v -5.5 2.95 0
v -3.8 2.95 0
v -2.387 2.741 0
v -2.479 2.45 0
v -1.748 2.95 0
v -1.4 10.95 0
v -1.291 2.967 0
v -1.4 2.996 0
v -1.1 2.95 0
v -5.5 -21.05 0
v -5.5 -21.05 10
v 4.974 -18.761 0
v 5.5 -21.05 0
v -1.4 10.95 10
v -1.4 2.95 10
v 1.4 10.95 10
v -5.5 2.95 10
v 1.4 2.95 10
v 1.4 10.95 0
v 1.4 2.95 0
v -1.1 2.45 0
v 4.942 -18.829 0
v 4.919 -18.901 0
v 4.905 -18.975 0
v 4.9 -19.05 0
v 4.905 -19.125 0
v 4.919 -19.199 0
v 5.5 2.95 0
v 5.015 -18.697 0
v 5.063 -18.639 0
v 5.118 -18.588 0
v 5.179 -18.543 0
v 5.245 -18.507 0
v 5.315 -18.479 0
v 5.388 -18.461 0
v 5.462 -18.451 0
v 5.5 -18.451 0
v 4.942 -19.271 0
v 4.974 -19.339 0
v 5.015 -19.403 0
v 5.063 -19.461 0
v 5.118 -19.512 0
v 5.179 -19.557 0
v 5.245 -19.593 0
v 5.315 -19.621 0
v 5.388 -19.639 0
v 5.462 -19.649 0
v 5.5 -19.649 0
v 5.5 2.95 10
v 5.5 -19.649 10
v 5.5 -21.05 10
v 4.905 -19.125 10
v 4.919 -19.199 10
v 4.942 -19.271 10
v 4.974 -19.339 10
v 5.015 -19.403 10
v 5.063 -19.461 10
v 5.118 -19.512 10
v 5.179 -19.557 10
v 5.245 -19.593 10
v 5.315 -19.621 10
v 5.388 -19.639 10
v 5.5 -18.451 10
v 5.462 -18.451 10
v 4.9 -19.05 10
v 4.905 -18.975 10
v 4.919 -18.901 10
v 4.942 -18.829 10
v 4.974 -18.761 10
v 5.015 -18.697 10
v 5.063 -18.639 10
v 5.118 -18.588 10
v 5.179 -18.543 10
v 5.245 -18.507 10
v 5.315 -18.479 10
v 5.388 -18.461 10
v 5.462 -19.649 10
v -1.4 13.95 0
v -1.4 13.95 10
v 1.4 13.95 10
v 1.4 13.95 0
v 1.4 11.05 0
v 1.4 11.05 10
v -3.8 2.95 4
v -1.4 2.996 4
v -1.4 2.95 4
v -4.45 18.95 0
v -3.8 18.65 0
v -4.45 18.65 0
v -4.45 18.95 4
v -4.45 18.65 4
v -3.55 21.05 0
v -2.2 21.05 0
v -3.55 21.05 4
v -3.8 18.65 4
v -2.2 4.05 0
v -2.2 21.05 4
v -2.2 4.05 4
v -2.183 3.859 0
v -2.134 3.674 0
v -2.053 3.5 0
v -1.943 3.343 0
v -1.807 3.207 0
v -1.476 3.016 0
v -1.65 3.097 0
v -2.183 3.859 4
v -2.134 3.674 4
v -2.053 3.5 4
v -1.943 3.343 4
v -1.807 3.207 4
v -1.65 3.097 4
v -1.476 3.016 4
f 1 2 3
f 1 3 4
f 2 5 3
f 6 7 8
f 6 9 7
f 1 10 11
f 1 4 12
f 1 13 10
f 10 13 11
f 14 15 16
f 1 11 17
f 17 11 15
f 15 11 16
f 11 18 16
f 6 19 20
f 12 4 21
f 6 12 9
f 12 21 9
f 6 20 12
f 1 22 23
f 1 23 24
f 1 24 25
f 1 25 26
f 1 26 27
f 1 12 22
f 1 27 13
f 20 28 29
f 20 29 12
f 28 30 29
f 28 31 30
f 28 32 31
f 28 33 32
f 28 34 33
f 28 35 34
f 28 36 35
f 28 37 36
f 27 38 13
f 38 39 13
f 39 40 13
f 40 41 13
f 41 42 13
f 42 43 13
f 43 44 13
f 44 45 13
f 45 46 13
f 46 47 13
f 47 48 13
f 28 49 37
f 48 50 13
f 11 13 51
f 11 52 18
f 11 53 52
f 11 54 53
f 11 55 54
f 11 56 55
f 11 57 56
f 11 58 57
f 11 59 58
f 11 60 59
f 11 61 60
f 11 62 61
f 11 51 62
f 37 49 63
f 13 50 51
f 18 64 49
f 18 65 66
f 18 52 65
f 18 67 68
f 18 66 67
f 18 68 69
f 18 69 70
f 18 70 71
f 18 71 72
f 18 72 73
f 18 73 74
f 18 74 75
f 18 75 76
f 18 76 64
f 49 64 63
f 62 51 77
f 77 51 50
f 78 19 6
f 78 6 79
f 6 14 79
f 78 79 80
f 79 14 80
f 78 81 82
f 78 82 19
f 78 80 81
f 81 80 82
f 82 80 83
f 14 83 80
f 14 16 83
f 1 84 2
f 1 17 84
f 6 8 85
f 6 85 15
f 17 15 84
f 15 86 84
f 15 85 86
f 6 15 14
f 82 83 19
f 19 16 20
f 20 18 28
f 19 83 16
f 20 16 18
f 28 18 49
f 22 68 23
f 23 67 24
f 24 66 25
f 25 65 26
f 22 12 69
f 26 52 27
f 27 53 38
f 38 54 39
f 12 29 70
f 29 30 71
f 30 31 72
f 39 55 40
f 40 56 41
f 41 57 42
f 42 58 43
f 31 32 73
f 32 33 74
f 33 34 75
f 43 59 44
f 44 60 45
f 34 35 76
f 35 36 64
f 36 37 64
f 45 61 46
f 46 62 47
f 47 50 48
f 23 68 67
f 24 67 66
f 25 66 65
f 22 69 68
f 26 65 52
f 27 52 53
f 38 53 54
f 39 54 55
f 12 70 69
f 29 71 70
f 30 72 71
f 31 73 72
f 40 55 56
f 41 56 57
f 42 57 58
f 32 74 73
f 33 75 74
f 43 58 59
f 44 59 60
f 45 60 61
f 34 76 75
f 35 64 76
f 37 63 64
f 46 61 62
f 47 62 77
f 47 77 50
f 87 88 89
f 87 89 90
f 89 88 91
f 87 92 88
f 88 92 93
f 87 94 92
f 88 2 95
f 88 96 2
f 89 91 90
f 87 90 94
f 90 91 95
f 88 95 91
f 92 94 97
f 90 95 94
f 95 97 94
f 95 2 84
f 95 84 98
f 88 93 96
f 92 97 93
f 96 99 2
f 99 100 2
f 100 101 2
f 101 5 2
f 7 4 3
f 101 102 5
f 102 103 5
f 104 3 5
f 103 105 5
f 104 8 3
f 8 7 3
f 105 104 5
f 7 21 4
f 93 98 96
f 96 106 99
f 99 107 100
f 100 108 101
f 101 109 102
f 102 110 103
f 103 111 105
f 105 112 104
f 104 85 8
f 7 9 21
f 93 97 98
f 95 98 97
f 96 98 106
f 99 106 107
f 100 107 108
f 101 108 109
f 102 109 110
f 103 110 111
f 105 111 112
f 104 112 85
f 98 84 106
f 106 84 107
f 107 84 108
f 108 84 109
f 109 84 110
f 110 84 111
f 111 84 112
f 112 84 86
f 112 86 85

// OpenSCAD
$fn = 50;

difference() {
	union() {
		translate(v = [0, 10.95, 0]) {
			rotate(a = [90, 0, 0]) {
				union() {
					difference() {
						union() {
							translate(v = [-5.5, 0, 0]) {
								cube(size = [11.0, 10.0, 32.0]);
							}
							translate(v = [-1.4, 0, -3.0]) {
								cube(size = [2.8, 10.0, 3.1]);
							}
						}
						union() {
							translate(v = [-5.6, -0.1, -0.1]) {
								cube(size = [4.199999999999999, 10.2, 8.1]);
							}
							translate(v = [1.4, -0.1, -0.1]) {
								cube(size = [4.199999999999999, 10.2, 8.1]);
							}
							translate(v = [5.5, 10.1, 30.0]) {
								rotate(a = [90, 0, 0]) {
									cylinder(h = 10.2, r = 0.6);
								}
							}
						}
					}
					union() {
						translate(v = [0, 4.0, 0]) {
							rotate(a = [90, 0, 0]) {
								linear_extrude(height = 4.0) {
									polygon(points = [[-2.2, -10.1], [-3.55, -10.1], [-4.45, -8.0], [-4.45, -7.7], [-3.8, -7.7], [-3.8, 8.5], [-1.1, 8.5], [-1.1, 8.0], [-1.291013, 7.983289], [-1.476222, 7.933662], [-1.65, 7.852628], [-1.807066, 7.742649], [-1.942649, 7.607066], [-2.052628, 7.45], [-2.133662, 7.276222], [-2.183289, 7.091013], [-2.2, 6.9]]);
								}
							}
						}
					}
				}
			}
		}
	}
	union();
}
